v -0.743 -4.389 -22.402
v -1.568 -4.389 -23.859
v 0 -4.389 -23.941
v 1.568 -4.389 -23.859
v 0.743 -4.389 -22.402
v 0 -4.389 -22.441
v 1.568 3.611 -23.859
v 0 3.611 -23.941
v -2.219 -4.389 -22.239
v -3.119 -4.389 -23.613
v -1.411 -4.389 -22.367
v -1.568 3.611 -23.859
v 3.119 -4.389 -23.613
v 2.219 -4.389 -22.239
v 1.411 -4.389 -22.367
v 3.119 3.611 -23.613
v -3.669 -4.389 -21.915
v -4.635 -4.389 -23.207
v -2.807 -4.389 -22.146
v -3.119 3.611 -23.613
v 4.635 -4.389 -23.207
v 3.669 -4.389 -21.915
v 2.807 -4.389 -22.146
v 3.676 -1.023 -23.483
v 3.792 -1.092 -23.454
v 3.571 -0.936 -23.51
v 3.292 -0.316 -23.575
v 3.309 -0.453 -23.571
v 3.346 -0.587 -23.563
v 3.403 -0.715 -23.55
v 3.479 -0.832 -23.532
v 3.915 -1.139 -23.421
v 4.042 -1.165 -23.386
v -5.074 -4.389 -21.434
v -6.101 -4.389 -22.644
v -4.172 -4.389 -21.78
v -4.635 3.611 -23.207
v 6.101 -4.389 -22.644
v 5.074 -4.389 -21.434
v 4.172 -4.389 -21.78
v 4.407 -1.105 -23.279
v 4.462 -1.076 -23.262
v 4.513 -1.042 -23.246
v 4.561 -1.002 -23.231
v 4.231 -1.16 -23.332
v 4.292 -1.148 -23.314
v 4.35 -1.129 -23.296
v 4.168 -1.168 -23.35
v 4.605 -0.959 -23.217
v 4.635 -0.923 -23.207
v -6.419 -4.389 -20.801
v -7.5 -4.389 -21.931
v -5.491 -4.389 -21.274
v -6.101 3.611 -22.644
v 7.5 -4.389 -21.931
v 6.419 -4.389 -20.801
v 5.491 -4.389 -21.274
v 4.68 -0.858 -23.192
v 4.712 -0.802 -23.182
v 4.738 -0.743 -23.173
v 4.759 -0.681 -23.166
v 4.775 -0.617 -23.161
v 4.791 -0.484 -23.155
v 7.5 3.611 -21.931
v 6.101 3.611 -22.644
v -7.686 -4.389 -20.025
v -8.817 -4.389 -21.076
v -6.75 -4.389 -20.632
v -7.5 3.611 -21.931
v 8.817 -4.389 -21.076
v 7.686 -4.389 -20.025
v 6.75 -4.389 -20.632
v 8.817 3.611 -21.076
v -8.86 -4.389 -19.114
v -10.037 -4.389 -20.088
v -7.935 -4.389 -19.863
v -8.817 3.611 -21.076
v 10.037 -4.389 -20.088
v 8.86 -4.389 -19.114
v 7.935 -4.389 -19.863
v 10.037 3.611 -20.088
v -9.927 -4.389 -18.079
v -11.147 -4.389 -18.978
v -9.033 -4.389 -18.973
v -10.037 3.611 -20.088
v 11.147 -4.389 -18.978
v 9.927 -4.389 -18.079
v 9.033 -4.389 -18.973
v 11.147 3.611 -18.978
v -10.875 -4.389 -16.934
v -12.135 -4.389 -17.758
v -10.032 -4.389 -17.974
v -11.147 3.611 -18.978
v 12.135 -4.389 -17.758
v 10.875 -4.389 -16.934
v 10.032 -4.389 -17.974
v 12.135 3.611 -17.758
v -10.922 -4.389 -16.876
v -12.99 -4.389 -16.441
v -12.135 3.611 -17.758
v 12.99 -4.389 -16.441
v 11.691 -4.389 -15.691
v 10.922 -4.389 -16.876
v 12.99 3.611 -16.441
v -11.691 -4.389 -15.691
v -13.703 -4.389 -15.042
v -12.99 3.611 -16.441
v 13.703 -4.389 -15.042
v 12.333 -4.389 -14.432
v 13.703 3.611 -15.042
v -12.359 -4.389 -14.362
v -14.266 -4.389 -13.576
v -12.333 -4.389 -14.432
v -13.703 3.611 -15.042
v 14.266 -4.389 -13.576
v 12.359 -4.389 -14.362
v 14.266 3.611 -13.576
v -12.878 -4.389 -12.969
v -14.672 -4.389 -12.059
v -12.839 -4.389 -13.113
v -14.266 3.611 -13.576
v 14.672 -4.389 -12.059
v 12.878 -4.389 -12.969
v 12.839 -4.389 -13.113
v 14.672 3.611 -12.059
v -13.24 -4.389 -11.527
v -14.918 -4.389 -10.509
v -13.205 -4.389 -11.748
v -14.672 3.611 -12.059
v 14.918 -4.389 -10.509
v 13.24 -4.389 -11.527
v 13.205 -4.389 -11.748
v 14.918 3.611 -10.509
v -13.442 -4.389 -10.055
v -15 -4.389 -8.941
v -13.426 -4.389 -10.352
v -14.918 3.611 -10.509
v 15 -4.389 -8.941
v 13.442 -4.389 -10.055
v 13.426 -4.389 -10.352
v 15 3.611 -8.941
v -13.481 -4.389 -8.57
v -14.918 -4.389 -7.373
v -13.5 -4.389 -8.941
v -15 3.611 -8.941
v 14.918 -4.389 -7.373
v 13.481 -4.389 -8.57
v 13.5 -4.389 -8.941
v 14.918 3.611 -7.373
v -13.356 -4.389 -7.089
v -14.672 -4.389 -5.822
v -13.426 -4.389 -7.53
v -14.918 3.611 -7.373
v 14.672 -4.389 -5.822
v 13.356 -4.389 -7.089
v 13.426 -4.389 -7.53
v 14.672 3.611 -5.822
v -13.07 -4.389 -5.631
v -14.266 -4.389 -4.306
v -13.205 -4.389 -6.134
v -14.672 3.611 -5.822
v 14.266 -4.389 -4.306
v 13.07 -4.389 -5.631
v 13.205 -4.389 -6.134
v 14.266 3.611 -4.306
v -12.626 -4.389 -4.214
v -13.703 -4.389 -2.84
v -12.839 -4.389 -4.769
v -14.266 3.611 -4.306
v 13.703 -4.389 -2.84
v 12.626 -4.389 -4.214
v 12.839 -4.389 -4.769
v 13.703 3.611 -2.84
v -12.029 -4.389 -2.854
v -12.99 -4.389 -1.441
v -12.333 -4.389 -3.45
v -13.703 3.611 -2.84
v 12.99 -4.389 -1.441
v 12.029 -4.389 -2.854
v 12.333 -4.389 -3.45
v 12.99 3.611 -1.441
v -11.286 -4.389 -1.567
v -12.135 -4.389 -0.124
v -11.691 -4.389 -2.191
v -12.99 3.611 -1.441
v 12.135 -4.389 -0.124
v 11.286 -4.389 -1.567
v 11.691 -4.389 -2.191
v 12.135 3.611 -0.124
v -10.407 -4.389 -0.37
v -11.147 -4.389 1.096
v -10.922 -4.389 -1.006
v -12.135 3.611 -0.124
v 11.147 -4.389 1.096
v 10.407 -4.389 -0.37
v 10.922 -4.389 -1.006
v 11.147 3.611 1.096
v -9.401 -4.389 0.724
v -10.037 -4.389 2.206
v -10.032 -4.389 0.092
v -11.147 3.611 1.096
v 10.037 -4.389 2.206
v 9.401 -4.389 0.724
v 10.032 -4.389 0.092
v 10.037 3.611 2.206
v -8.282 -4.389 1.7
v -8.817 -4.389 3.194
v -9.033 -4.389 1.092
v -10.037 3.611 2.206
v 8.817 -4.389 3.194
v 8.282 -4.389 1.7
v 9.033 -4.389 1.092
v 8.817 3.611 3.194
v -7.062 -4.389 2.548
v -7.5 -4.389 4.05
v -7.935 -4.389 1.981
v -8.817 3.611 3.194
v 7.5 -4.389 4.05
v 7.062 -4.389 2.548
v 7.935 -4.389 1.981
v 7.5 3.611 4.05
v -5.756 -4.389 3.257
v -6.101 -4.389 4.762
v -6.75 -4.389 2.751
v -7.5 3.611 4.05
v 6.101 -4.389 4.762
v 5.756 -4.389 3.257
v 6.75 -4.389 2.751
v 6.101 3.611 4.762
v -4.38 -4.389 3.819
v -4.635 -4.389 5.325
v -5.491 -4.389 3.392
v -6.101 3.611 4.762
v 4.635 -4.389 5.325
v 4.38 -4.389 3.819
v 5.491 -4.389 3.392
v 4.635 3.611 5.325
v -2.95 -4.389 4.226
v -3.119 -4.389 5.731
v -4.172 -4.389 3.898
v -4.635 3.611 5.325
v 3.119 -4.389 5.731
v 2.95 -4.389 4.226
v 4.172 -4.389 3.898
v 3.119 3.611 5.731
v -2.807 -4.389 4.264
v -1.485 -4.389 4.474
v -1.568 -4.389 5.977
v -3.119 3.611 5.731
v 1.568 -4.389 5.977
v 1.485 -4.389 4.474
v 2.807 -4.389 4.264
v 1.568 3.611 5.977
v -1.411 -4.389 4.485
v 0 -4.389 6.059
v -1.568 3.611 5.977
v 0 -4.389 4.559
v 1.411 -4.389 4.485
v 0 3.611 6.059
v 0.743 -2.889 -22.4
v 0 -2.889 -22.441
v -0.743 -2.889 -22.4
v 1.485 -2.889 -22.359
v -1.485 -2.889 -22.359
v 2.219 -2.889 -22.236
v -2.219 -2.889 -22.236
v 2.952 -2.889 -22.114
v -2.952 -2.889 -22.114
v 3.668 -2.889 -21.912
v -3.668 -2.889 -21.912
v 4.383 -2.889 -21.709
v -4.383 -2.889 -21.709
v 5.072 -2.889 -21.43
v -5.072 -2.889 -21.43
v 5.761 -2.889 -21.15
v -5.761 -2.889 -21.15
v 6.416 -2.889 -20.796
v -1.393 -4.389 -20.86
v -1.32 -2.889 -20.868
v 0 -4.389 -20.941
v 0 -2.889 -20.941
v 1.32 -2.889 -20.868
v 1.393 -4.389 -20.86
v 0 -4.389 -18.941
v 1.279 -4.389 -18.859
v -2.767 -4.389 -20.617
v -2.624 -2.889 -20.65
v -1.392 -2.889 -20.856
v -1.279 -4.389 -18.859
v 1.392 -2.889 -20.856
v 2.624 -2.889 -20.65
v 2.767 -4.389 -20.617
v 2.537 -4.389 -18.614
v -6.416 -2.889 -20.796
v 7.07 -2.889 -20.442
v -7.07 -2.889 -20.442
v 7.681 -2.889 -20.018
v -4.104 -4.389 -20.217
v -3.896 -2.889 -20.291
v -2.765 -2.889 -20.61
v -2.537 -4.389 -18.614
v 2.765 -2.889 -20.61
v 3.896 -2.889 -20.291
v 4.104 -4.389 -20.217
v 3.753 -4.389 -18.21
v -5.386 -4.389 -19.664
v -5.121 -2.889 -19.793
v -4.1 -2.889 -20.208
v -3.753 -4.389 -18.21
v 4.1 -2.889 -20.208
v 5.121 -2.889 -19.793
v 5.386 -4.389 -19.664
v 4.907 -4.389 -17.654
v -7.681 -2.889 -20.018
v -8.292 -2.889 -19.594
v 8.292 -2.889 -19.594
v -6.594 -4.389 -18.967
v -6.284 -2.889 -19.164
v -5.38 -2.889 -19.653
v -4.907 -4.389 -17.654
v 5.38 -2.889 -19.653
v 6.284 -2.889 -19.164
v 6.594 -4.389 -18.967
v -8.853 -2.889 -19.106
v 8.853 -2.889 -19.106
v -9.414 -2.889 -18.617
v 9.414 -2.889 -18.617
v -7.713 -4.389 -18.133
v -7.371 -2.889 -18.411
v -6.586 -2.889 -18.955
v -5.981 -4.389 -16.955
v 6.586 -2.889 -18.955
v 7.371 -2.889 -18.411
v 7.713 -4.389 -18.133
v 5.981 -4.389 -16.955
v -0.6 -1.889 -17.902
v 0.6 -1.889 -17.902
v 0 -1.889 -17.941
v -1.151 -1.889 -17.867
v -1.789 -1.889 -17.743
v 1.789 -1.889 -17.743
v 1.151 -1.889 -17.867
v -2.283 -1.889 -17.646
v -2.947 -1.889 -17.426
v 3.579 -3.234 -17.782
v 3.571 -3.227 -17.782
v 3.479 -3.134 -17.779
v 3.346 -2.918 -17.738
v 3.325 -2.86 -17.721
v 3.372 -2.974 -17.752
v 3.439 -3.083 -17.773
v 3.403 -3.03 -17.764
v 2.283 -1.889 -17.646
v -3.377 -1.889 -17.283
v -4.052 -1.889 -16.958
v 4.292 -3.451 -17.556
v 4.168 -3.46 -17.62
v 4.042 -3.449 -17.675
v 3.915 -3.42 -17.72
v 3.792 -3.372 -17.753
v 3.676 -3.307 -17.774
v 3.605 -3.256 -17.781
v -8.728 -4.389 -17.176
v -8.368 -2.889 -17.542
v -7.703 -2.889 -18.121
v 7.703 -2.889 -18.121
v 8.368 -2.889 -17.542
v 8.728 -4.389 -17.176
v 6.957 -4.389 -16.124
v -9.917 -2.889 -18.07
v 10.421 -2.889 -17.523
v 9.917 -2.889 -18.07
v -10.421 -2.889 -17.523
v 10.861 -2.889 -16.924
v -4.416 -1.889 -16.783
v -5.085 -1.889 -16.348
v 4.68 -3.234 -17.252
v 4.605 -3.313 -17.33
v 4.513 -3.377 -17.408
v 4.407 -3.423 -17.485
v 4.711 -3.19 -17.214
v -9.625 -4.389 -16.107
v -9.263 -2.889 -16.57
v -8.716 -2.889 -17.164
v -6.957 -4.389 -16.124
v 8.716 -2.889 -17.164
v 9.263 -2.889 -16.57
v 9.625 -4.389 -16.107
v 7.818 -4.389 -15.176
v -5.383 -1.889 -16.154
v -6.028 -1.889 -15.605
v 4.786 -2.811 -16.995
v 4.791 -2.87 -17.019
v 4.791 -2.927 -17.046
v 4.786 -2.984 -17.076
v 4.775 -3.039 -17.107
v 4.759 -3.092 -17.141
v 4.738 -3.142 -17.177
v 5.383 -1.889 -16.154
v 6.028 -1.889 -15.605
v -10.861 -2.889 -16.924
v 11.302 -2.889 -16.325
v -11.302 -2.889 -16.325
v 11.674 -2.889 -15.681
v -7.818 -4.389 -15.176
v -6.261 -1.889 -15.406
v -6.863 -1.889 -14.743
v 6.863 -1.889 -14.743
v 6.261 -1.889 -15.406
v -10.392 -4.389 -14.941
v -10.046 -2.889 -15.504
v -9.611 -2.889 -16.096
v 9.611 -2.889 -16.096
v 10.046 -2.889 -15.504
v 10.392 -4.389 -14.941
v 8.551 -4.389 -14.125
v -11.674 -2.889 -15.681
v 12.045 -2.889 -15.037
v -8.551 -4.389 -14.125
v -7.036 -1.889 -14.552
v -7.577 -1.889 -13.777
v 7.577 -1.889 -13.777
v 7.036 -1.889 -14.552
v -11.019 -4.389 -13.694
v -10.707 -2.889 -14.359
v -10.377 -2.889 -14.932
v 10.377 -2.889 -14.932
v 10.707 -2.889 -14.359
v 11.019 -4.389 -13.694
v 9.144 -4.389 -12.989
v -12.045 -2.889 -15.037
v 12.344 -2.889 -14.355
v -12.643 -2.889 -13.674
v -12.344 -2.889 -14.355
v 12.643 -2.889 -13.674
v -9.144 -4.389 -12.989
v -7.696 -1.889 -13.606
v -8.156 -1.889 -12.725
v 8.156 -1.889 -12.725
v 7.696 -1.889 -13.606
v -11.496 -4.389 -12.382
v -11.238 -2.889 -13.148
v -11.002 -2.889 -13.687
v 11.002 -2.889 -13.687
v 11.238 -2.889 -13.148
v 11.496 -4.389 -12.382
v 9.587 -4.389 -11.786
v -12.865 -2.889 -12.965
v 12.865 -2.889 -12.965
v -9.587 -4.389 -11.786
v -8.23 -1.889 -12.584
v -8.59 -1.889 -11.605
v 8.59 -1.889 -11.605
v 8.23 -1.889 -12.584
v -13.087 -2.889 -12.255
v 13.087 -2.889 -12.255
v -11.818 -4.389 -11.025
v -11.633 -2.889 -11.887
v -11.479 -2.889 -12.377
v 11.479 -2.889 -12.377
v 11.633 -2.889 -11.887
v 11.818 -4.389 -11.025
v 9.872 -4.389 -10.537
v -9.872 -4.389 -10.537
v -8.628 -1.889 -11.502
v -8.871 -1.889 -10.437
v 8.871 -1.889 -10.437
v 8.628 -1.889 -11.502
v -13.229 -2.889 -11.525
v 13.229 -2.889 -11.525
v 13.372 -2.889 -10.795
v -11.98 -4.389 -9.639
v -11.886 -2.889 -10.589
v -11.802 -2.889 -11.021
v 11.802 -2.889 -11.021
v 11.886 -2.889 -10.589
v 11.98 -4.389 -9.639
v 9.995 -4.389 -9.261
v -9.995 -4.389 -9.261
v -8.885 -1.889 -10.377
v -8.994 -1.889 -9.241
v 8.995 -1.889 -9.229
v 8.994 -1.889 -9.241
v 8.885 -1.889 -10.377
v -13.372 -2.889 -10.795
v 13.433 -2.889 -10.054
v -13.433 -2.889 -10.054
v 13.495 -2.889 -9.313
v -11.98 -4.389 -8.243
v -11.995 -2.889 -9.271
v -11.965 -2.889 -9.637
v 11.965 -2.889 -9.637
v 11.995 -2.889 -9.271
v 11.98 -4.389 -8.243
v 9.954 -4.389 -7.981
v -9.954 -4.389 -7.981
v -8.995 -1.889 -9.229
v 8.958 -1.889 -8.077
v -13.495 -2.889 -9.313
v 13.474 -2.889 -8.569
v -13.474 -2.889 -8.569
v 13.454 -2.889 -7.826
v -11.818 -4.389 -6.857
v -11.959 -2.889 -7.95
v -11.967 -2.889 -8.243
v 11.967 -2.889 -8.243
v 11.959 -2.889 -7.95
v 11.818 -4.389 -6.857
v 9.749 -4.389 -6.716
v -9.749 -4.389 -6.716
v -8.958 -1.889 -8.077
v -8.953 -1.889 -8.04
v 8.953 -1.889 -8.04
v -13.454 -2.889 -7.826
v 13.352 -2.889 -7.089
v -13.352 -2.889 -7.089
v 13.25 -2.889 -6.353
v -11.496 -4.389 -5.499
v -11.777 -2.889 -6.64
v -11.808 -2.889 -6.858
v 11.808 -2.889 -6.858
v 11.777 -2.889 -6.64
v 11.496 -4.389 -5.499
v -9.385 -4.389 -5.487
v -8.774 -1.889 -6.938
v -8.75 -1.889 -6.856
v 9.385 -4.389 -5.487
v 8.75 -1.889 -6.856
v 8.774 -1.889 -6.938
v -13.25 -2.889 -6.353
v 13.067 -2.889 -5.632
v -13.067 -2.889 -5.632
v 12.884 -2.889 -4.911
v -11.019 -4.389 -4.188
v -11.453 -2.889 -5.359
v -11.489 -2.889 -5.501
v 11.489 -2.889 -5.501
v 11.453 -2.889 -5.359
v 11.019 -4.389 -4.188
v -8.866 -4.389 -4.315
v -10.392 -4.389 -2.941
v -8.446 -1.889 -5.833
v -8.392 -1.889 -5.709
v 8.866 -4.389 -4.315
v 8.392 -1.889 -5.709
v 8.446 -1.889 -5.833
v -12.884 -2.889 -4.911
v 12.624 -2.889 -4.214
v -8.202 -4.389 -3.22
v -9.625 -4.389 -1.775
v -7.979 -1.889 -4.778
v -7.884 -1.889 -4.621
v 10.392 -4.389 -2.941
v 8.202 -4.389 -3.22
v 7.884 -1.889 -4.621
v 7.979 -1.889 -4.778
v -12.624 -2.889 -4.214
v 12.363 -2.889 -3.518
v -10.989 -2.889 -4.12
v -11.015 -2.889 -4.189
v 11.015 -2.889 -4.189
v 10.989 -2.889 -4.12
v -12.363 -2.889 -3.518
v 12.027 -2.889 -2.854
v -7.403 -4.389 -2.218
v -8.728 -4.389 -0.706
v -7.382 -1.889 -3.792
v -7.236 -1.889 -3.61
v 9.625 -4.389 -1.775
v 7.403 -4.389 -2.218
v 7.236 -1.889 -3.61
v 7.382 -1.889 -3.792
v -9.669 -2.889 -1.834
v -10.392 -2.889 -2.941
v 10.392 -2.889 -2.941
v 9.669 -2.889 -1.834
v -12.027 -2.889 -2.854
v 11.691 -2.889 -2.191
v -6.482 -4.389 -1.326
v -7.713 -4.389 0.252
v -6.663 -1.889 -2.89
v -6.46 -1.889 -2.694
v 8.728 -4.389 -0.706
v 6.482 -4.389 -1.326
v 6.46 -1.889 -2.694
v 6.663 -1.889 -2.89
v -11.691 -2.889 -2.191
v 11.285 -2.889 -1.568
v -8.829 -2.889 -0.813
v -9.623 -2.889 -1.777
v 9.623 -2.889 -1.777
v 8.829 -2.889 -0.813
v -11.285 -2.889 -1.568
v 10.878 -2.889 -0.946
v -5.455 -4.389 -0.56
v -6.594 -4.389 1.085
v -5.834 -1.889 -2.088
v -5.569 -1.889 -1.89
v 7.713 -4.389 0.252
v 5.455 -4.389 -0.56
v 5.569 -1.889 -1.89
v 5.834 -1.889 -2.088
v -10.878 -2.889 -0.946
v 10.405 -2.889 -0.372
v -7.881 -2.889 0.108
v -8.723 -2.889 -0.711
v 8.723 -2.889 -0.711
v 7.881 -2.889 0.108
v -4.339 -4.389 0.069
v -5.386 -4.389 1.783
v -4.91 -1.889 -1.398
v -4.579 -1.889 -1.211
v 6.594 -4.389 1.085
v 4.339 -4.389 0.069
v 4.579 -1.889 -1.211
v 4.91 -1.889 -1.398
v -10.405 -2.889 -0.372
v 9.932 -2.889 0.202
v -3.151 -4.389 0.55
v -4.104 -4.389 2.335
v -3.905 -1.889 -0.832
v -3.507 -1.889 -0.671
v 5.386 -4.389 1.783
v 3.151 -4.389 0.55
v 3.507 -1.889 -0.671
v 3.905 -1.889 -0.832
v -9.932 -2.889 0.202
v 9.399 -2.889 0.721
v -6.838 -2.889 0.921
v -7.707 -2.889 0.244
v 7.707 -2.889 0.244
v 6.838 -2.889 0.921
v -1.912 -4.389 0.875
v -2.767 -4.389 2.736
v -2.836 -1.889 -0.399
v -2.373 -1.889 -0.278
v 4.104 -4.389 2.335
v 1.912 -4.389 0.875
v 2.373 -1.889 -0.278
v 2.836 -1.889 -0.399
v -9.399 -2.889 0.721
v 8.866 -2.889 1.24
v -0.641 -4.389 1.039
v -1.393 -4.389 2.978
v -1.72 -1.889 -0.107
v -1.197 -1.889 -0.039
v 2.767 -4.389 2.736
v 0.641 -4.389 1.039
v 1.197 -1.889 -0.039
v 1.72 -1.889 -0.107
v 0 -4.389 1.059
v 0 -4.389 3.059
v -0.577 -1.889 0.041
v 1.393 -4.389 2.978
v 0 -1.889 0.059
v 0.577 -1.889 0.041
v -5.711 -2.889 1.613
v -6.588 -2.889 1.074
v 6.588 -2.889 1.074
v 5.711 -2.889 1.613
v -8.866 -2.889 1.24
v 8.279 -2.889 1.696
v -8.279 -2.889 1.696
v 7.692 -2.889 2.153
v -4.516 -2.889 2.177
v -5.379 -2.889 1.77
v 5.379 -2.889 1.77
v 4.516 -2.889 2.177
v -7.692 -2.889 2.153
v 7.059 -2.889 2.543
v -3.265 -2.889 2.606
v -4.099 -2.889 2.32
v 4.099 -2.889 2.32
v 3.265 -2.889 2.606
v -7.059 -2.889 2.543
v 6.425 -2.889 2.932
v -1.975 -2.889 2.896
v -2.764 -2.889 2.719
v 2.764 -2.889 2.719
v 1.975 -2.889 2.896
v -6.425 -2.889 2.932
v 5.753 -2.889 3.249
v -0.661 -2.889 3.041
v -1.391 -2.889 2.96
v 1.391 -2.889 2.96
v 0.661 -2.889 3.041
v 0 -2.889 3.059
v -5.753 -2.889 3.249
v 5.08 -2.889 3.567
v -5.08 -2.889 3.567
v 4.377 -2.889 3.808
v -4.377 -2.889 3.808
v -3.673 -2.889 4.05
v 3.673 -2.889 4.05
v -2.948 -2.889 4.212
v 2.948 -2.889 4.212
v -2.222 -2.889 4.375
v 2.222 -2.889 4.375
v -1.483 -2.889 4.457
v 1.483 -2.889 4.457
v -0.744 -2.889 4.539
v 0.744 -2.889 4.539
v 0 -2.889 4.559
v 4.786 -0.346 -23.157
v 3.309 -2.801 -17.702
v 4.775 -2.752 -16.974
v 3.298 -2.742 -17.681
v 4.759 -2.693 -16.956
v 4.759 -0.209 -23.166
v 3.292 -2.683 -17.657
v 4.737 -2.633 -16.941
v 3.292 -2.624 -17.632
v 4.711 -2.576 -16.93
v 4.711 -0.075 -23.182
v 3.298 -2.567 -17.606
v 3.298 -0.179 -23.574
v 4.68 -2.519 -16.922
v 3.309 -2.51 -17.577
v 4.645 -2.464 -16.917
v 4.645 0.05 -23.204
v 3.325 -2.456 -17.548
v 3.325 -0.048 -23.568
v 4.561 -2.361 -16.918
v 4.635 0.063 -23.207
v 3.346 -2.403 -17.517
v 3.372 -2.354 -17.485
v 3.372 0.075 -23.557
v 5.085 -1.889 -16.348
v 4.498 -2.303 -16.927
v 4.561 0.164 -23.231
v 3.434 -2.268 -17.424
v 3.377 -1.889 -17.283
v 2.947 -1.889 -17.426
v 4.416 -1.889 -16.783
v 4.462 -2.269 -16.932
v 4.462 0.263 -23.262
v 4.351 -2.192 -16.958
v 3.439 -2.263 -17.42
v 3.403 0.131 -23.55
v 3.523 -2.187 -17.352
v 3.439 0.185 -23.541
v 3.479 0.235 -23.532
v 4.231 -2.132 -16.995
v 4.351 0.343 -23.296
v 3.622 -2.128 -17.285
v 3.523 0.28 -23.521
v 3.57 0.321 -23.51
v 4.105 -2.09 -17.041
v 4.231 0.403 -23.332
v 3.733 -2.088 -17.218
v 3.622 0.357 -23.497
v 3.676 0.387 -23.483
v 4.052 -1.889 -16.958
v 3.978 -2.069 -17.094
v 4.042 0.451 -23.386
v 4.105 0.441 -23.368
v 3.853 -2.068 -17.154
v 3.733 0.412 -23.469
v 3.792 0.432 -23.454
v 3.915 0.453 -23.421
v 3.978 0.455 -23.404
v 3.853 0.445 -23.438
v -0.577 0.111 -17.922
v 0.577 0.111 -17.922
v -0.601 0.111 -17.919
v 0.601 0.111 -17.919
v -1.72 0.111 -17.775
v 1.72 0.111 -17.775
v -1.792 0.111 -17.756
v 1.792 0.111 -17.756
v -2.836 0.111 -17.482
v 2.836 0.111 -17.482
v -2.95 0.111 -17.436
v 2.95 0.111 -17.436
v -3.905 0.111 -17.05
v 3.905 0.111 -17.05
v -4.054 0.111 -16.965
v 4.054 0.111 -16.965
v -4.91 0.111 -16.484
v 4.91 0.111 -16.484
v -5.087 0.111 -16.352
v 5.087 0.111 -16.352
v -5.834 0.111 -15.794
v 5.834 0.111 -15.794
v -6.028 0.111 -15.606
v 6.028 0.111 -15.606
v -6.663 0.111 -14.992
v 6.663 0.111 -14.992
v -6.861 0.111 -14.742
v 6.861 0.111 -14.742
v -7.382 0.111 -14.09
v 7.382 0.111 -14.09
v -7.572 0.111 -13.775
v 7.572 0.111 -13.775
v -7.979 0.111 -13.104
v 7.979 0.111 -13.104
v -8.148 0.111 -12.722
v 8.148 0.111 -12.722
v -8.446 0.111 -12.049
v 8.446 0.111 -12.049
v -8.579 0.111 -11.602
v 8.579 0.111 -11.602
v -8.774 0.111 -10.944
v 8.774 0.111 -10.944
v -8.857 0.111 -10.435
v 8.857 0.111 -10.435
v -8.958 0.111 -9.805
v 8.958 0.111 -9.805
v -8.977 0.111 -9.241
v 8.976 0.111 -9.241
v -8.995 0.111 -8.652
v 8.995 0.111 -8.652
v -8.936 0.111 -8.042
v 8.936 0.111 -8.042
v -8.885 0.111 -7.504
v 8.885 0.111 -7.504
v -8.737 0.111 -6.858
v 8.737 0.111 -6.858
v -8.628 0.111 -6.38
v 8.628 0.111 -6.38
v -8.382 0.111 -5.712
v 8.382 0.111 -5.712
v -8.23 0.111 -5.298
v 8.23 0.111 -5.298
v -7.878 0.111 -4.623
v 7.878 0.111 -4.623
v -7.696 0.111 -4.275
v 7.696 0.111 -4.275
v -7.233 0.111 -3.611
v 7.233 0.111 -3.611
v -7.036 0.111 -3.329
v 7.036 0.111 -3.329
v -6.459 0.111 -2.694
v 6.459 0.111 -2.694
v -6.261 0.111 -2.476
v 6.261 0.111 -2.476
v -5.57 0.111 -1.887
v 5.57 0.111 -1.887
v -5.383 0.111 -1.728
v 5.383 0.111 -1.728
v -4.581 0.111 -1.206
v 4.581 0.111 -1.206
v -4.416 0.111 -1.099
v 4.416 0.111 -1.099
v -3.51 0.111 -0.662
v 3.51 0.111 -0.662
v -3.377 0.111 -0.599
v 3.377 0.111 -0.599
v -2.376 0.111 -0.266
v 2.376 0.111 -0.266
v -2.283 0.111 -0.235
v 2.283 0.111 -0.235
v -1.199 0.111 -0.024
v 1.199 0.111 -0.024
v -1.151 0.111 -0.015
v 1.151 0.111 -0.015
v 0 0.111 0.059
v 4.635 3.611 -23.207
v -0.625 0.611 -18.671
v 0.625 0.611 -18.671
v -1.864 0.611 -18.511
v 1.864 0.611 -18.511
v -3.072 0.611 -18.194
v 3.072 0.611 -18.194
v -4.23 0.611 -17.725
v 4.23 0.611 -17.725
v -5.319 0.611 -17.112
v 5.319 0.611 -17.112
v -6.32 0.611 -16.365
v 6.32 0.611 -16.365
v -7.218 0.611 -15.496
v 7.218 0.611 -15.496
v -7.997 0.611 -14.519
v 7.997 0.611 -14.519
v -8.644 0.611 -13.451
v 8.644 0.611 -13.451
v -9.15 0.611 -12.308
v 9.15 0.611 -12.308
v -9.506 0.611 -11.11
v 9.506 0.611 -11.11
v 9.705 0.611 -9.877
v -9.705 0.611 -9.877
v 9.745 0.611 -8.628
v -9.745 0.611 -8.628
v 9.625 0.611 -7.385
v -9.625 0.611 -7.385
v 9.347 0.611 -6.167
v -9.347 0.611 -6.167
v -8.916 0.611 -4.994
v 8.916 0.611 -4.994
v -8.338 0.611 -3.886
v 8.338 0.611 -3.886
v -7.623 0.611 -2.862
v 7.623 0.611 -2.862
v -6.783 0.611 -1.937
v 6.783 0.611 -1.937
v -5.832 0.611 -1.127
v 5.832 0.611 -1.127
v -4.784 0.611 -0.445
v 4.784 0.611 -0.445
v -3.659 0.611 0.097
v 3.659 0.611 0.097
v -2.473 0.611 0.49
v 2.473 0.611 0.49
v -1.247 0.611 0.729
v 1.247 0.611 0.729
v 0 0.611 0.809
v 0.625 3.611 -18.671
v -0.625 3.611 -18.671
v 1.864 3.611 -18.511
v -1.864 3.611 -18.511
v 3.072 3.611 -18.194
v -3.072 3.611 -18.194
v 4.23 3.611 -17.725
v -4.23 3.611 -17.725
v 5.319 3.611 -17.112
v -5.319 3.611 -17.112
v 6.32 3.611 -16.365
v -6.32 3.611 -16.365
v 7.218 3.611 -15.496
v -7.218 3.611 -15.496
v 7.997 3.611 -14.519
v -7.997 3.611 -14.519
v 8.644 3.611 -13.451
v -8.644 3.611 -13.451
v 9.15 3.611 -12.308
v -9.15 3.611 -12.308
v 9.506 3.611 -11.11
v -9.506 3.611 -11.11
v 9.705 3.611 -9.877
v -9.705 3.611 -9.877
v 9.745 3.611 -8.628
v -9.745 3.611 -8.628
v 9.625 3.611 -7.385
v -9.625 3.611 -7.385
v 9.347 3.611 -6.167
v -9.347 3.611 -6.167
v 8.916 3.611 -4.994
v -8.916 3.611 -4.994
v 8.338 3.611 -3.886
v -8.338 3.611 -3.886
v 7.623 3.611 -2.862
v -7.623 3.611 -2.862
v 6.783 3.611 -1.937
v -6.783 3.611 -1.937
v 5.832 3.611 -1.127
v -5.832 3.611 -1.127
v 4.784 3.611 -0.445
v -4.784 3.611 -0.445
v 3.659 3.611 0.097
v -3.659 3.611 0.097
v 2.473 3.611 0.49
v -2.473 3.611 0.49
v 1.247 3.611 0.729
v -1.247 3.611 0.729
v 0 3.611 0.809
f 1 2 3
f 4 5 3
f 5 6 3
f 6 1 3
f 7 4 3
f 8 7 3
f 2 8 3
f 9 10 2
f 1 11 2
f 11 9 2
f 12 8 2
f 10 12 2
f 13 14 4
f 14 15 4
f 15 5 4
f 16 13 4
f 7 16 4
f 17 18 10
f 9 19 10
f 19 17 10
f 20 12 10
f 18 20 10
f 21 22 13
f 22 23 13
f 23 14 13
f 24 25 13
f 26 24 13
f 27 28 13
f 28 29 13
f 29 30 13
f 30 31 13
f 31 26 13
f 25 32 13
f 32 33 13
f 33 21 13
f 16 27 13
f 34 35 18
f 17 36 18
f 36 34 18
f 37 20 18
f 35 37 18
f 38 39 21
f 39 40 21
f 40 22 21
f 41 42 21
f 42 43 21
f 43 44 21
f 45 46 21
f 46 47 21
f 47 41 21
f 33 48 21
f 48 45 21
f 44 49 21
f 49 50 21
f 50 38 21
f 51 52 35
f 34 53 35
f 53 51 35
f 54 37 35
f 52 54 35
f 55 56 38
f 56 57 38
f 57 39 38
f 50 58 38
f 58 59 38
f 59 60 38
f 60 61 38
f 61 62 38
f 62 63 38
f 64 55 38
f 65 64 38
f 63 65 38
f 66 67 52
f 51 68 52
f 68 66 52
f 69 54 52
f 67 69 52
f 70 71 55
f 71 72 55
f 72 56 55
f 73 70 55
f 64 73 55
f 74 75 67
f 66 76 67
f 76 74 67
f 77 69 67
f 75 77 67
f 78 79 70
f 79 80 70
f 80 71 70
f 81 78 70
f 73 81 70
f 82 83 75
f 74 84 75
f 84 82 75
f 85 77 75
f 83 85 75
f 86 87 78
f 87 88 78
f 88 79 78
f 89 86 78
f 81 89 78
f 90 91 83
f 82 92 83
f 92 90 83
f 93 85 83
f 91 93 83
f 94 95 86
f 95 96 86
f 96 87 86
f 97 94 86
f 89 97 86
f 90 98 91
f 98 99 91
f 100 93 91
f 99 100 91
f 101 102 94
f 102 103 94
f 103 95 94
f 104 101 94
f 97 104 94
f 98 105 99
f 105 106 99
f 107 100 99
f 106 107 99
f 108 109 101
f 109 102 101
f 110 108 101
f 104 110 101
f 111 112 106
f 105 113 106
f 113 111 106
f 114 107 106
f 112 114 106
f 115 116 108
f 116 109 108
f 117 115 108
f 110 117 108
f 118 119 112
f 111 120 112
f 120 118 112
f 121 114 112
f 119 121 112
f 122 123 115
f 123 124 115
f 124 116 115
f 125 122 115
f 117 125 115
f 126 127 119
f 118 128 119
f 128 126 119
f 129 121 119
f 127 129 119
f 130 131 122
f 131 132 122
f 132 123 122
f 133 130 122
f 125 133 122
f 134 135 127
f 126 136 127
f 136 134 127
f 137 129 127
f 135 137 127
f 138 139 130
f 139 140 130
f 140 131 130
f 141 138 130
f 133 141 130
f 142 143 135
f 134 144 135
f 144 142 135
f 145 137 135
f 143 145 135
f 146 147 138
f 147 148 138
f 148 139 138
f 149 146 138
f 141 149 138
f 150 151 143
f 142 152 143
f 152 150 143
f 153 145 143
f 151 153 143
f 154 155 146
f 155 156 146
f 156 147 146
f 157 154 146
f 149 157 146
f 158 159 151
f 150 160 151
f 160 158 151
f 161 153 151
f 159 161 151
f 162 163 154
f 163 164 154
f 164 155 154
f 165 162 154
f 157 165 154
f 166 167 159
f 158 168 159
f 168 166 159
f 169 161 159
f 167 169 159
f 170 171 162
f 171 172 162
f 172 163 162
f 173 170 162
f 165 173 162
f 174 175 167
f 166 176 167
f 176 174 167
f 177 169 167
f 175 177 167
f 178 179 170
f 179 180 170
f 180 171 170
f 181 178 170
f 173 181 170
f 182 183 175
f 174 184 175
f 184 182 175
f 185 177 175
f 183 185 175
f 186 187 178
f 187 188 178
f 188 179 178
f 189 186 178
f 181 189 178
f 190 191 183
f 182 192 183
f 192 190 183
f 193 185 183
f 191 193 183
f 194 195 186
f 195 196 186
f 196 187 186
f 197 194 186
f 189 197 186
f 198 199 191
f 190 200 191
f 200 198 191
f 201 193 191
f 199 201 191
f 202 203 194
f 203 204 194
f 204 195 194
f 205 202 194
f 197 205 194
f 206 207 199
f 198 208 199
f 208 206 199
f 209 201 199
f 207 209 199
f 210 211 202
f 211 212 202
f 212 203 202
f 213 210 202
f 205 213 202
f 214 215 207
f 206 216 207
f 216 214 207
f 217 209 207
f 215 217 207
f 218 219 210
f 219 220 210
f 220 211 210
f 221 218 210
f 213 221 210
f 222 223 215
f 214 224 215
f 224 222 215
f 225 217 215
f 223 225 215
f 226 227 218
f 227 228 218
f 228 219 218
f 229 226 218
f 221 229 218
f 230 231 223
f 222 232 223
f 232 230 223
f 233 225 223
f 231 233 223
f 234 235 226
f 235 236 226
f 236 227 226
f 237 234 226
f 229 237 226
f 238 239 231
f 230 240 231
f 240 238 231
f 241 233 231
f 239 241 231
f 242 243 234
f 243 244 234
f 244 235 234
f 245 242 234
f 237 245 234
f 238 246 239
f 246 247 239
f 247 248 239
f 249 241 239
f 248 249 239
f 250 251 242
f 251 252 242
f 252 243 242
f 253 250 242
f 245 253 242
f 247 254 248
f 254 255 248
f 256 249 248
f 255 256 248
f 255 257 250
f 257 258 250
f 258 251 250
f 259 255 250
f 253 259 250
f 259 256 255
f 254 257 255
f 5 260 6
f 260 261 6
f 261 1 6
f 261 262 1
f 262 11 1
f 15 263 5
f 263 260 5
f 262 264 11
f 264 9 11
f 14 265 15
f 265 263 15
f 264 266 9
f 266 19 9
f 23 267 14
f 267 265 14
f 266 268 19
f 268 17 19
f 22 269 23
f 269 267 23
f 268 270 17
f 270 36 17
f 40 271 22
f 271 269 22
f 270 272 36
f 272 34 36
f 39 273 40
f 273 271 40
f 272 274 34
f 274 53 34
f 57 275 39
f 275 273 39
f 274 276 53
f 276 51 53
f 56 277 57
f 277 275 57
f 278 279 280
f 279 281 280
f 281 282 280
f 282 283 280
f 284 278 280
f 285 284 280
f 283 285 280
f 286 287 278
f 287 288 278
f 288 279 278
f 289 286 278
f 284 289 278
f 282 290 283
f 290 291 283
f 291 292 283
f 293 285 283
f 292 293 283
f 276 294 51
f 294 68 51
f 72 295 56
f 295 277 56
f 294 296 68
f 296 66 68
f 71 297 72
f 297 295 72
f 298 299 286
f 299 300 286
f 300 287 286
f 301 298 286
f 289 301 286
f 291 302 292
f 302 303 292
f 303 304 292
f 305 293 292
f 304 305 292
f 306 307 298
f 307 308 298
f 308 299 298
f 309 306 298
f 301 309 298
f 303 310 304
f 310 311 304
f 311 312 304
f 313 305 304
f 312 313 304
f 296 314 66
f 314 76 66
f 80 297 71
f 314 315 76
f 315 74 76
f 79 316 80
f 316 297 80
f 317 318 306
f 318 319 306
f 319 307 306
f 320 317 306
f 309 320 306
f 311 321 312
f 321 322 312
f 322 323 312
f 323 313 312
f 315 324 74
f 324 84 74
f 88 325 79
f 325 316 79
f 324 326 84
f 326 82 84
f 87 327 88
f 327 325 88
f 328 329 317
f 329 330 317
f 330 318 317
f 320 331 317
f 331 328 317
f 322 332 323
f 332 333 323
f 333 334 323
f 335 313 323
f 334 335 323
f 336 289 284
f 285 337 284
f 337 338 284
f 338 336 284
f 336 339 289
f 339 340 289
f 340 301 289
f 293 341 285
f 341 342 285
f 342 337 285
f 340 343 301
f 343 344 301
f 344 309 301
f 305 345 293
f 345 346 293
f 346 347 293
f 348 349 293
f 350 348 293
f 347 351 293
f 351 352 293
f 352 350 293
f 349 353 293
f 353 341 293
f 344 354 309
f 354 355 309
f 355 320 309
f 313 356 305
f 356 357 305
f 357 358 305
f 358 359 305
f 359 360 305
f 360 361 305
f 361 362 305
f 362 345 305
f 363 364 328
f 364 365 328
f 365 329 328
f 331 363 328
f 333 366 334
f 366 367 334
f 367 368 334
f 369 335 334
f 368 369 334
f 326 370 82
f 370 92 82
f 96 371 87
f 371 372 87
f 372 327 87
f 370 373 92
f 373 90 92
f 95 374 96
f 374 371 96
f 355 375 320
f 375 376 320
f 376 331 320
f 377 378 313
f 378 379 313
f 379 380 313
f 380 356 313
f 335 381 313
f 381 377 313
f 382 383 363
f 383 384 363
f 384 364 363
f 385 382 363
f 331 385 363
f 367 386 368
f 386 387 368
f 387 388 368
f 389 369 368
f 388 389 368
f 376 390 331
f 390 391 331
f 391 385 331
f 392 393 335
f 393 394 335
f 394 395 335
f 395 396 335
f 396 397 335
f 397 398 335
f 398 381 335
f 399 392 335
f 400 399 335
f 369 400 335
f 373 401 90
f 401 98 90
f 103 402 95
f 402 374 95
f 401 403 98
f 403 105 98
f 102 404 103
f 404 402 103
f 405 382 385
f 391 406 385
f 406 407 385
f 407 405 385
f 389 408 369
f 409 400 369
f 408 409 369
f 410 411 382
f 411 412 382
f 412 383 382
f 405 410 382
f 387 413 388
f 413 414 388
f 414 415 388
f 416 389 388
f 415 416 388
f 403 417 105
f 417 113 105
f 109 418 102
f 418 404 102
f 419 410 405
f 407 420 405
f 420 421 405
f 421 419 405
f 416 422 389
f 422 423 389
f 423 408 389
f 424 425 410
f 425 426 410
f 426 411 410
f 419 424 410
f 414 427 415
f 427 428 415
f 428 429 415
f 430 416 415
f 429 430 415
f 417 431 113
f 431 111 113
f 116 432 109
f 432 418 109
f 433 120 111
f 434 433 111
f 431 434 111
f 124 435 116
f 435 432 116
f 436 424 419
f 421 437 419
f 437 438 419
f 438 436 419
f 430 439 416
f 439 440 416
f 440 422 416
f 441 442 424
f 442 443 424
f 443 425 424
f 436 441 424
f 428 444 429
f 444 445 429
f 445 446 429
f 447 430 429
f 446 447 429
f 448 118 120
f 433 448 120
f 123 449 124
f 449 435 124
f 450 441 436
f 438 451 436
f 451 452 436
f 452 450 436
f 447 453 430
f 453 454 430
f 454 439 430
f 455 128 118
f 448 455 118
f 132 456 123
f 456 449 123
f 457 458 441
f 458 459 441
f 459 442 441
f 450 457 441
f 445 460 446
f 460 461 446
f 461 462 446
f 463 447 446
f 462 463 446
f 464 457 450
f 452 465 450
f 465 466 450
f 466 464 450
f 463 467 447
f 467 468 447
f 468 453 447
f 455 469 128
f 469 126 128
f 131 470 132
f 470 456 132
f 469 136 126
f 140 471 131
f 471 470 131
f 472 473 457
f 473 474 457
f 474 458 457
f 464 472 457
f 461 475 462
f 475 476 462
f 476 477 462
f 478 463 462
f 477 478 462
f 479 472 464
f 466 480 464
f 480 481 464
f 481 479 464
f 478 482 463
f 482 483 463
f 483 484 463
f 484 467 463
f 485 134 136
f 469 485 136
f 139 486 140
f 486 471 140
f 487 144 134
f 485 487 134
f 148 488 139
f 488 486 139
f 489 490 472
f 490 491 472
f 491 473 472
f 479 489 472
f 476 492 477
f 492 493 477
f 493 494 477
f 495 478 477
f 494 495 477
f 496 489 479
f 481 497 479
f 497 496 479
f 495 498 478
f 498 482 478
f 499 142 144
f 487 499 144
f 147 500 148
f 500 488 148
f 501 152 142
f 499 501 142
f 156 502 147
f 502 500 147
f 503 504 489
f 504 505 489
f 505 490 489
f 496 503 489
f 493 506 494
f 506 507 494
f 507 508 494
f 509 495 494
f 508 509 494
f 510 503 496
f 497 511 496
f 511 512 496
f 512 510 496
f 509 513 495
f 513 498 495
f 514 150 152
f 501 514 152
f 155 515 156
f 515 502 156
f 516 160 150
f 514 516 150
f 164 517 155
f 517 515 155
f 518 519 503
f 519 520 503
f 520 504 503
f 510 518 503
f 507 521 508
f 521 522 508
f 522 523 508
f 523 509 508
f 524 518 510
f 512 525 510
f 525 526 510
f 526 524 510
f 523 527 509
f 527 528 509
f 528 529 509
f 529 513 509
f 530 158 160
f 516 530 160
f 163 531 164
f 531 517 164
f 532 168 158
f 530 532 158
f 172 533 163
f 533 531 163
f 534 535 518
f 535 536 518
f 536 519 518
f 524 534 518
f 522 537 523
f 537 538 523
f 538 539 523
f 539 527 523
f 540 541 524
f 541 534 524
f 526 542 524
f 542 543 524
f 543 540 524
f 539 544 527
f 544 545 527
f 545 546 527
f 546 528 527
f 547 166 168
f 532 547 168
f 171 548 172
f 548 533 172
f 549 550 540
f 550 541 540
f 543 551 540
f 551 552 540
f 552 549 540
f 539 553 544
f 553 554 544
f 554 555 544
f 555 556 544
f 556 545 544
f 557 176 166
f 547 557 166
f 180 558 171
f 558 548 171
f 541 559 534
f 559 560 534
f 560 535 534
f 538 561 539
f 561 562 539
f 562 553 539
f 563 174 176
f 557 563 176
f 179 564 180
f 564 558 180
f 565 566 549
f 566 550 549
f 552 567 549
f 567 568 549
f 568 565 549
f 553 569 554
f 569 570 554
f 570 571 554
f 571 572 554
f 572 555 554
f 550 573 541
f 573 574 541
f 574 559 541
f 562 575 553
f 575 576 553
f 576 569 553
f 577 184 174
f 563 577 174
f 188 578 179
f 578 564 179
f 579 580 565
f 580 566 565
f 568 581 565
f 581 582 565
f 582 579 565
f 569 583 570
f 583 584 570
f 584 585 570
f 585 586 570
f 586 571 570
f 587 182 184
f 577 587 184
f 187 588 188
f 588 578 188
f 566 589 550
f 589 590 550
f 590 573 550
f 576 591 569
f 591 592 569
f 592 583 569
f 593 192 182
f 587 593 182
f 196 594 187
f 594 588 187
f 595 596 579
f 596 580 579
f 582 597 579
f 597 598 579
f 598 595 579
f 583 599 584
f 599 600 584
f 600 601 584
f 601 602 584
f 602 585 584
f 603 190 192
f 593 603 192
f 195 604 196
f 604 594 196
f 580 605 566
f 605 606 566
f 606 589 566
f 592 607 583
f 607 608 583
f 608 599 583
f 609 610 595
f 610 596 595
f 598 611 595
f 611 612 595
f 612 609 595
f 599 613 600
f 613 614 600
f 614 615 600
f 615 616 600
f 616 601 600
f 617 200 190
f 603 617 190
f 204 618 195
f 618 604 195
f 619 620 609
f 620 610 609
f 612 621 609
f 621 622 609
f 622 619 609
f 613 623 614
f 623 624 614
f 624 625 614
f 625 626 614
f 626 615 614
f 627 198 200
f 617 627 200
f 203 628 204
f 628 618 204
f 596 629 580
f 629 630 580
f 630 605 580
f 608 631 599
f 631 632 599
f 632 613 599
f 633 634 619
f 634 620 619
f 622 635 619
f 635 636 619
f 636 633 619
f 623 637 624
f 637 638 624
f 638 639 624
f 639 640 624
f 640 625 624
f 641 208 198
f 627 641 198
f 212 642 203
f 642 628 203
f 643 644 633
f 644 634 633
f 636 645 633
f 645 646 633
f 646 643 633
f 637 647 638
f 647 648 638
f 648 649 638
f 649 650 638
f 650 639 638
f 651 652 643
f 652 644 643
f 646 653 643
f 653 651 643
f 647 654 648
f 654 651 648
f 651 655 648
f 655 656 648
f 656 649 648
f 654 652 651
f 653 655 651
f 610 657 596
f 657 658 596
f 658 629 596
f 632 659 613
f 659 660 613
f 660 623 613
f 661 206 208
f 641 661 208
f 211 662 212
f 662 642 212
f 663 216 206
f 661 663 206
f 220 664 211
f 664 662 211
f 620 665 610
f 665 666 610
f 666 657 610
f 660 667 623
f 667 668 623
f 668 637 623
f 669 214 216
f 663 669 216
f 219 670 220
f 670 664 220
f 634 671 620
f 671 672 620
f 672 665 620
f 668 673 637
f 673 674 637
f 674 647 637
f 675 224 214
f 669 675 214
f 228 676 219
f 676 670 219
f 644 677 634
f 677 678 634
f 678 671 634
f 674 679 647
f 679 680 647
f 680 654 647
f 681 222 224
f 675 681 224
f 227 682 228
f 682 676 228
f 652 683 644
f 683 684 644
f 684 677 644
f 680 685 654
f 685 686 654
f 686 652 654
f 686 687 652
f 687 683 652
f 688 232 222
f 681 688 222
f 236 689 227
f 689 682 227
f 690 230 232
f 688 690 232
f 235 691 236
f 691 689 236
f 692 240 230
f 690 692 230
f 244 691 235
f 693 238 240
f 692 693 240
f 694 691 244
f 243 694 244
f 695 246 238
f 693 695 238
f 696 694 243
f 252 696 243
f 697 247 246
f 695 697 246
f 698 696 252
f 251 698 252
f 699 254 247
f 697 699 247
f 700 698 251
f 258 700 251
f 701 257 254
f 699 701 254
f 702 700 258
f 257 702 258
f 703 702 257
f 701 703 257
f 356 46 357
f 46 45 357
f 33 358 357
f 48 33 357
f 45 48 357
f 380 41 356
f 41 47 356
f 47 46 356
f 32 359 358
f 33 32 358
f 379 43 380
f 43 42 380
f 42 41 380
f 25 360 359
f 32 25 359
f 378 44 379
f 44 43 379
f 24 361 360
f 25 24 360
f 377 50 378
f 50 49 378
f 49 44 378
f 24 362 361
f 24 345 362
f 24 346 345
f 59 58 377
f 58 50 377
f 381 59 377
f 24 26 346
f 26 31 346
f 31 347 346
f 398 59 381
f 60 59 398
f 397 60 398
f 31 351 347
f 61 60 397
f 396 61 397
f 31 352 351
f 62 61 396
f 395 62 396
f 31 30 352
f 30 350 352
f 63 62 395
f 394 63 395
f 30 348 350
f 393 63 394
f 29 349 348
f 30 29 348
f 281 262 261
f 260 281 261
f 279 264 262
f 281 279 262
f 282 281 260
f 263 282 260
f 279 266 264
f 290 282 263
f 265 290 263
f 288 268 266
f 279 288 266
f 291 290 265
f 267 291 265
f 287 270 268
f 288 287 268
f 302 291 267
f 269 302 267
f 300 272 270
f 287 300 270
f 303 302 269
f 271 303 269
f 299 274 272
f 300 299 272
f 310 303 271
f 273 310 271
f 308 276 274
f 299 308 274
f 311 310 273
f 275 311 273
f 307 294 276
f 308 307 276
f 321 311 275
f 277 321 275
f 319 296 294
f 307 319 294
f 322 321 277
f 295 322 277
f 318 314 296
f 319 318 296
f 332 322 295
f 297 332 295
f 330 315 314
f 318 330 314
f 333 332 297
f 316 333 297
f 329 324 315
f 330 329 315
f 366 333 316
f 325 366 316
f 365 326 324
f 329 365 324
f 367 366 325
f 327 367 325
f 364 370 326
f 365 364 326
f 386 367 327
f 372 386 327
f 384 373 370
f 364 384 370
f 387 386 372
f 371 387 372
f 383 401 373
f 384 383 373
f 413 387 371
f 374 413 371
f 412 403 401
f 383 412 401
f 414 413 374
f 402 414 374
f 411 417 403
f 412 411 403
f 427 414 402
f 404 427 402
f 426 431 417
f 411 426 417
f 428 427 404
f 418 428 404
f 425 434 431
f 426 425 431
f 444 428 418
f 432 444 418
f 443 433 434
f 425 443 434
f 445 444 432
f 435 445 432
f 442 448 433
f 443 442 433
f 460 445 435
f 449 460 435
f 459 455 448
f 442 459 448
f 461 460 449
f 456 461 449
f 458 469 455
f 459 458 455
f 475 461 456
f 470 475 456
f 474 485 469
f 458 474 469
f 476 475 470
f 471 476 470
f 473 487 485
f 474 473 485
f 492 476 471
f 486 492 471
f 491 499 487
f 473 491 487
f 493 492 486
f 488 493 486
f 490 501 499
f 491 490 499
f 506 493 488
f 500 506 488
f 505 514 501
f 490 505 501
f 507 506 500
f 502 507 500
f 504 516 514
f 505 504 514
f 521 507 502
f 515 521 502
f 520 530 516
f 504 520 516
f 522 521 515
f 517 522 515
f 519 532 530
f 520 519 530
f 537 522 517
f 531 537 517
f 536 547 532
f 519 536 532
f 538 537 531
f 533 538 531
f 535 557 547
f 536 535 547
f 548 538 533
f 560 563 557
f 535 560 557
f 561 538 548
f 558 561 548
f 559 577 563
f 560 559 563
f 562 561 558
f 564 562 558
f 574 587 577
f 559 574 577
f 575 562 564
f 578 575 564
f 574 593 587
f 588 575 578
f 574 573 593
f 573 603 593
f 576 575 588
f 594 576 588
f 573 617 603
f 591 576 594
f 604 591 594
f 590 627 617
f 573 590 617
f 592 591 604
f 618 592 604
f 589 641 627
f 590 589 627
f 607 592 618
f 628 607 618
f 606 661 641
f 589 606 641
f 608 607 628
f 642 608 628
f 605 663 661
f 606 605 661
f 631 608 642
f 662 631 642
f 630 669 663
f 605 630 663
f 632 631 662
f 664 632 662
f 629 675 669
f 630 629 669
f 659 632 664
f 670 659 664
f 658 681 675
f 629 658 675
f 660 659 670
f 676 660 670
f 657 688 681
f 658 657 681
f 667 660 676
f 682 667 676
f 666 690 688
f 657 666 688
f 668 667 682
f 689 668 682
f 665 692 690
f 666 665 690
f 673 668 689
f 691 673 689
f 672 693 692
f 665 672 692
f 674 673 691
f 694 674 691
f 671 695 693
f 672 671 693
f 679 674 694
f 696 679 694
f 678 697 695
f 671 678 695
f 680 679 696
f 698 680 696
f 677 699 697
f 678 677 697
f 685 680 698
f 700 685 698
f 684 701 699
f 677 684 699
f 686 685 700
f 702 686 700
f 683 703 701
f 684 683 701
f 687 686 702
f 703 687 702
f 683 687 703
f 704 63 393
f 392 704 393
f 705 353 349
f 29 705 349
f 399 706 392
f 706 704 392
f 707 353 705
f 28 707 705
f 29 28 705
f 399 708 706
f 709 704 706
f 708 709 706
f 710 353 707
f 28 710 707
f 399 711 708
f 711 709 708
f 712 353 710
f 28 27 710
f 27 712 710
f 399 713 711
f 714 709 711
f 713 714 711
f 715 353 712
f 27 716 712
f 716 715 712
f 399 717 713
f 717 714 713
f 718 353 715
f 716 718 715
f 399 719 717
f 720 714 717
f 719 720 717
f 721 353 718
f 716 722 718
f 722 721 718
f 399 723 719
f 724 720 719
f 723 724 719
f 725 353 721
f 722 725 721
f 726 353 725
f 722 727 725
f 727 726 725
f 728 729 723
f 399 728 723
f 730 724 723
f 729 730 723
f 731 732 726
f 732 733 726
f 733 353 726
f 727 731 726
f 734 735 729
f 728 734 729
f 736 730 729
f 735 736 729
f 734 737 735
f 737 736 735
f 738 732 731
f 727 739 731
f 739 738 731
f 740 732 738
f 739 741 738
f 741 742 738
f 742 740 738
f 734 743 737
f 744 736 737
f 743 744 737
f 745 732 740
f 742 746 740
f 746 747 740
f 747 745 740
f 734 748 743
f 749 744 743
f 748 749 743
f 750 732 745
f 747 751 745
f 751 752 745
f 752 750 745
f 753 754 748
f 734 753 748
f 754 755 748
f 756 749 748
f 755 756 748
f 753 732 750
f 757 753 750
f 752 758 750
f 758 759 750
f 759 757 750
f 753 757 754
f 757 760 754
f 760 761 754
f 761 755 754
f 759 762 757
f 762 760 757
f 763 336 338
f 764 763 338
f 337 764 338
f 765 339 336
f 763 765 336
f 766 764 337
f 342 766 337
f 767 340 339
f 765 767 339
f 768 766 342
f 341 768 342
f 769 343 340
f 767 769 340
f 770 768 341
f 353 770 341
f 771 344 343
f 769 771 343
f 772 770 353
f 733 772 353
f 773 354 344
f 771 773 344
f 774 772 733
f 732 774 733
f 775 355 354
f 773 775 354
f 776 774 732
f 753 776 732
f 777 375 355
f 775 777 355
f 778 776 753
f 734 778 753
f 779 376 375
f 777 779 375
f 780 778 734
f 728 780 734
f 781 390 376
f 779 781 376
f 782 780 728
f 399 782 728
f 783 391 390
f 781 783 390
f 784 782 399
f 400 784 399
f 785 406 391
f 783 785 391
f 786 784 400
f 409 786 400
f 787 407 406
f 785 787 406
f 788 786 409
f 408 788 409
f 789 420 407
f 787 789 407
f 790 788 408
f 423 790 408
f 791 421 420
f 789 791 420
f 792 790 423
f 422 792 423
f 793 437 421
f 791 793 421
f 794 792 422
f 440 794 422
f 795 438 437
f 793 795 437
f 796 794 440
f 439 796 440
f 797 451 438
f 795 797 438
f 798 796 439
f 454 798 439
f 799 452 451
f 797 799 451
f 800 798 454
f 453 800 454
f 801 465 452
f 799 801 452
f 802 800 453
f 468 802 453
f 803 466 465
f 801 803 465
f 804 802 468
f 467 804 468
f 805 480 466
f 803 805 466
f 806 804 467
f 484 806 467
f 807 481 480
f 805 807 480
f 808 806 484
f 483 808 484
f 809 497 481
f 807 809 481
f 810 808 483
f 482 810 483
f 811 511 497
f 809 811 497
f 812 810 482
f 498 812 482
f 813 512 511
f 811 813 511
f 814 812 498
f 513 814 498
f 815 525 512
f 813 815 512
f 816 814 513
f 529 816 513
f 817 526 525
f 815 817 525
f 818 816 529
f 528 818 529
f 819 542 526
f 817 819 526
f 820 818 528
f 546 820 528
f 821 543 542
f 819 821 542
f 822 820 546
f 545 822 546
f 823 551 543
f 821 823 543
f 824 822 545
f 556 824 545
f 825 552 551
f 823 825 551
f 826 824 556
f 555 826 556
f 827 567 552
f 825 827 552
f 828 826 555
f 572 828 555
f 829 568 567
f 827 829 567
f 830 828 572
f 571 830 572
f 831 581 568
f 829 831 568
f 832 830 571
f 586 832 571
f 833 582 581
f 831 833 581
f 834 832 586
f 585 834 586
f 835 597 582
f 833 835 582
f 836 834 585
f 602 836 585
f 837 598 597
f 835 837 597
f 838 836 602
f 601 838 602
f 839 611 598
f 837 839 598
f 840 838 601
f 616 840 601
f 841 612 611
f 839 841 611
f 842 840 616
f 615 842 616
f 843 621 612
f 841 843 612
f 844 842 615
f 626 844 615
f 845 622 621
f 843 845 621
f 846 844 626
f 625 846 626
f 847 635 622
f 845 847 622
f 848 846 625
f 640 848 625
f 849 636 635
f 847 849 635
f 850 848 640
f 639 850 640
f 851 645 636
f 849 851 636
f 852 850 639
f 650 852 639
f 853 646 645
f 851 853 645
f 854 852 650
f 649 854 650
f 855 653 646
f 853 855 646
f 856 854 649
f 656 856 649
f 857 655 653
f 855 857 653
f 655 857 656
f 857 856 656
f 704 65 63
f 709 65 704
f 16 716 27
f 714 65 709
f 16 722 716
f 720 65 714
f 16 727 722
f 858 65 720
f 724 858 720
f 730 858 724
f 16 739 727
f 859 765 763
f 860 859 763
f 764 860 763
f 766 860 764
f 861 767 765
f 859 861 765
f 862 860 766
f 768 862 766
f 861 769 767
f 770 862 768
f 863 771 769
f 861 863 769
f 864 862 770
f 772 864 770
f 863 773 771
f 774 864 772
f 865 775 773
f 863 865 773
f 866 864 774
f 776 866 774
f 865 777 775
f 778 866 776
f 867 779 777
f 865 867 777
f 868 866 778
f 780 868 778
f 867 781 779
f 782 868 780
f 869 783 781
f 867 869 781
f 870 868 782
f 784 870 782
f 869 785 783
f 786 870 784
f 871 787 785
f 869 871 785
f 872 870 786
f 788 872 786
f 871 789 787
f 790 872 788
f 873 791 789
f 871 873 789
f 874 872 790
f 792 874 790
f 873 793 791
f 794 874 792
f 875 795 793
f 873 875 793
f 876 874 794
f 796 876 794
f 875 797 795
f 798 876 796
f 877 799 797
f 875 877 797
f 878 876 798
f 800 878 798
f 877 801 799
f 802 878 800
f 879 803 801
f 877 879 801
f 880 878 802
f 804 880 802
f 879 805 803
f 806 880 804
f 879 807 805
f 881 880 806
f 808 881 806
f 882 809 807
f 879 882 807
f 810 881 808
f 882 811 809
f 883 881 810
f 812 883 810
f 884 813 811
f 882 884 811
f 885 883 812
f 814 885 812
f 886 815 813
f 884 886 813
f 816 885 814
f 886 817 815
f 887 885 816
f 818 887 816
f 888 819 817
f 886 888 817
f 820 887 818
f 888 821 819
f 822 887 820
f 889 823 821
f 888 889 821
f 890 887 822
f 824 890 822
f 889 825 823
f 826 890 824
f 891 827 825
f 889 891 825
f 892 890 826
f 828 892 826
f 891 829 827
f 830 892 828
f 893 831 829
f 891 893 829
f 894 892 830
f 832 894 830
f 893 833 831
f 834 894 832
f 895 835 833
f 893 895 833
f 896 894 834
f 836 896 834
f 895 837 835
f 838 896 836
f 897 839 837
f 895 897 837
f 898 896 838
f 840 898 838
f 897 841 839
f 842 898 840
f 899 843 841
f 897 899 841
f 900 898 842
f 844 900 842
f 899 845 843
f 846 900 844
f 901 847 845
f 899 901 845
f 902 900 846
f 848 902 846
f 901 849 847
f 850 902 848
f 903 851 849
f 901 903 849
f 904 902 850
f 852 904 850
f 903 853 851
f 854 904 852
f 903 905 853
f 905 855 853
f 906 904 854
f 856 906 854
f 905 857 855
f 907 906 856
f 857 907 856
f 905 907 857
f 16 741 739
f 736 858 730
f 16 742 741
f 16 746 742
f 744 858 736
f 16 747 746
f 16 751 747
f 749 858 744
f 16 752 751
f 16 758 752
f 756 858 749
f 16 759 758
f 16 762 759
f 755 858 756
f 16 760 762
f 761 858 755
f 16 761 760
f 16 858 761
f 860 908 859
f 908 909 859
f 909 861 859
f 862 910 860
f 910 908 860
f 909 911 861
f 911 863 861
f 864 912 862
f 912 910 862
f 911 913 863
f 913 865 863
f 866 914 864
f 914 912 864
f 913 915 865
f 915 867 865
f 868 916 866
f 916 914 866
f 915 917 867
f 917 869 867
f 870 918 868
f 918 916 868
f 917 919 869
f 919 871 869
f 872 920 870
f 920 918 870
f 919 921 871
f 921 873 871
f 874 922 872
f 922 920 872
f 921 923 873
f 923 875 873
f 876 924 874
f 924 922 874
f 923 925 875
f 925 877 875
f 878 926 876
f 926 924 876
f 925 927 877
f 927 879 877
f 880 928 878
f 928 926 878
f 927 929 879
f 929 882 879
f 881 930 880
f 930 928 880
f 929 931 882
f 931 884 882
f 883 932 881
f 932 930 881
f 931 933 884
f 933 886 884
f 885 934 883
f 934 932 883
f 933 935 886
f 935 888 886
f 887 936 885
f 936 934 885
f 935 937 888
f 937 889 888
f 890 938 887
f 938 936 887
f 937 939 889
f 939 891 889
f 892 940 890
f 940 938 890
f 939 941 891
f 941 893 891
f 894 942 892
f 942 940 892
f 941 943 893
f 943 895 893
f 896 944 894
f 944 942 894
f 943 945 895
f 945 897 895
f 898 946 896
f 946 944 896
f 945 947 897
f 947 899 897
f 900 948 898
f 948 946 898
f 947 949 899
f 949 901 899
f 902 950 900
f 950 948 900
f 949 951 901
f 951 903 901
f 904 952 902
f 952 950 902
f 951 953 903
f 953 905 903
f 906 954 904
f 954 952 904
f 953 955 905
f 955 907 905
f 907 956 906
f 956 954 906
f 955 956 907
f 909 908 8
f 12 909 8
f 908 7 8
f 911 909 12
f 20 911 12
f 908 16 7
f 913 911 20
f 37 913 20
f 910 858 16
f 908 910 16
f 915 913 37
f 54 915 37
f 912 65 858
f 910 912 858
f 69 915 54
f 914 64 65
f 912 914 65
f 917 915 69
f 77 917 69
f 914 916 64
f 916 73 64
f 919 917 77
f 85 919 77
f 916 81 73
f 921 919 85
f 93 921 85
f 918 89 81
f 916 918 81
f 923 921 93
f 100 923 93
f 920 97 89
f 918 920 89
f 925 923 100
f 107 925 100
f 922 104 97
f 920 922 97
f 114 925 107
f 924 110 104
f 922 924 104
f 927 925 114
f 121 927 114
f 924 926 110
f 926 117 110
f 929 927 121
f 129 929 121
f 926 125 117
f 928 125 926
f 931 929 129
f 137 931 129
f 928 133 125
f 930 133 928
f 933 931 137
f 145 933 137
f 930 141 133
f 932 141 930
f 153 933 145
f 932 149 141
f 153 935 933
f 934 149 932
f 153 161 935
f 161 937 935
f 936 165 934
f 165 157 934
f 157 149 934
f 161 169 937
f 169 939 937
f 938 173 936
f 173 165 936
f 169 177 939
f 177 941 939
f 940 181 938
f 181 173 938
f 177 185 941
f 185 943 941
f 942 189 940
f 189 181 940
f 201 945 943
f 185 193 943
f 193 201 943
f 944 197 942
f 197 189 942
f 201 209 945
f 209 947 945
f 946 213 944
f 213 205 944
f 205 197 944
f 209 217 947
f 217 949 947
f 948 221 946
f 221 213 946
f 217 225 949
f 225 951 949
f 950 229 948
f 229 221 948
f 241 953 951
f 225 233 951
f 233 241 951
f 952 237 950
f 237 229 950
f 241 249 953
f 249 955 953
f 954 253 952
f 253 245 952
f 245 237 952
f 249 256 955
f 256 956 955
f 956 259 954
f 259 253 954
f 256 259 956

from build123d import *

# Parameters (mm, degrees)
CUT_EXTRUDE2_DEPTH      = 28.696934518
CUT_EXTRUDE2_DEPTH_BACK = 28.696934518
SKETCH10_R              = 0.75


with BuildPart() as part:
    # Sketch1 → Revolve1 (revolve)
    with BuildSketch(Plane(origin=(0, 0, 0), x_dir=(0, 0, -1), z_dir=(1, 0, 0))):
        Polygon((-6.059175667, 3.611199877), (-6.059175667, -4.388800123), (-4.559175656, -4.388756431), (-4.559175656, -2.888756431), (-3.059175668, -2.88856746), (-3.059175668, -4.388756431), (-1.059175668, -4.388756431), (-0.059175667, -1.888800123), (-0.059175667, 0.111199877), (-0.809175667, 0.611199877), (-0.809175667, 3.611199877), align=None)
    revolve(axis=Axis((0, 4.111199877, -8.940824333), (0, -1, 0)))

    # Sketch10 → Cut-Extrude2 (cut, two sides: drawn at the far end of the back side and taken through both)
    with BuildSketch(Plane(origin=(0, 5.926037439, -14.814834675), x_dir=(1, 0, 0), z_dir=(0, -0.37139627193644054, 0.9284744526327656)).offset(-CUT_EXTRUDE2_DEPTH_BACK)):
        with Locations(Location((4.041684761, -9.017, 0), (0, 0, 270))):
            Circle(SKETCH10_R)
    extrude(amount=CUT_EXTRUDE2_DEPTH + CUT_EXTRUDE2_DEPTH_BACK, mode=Mode.SUBTRACT)


solid = part.part
